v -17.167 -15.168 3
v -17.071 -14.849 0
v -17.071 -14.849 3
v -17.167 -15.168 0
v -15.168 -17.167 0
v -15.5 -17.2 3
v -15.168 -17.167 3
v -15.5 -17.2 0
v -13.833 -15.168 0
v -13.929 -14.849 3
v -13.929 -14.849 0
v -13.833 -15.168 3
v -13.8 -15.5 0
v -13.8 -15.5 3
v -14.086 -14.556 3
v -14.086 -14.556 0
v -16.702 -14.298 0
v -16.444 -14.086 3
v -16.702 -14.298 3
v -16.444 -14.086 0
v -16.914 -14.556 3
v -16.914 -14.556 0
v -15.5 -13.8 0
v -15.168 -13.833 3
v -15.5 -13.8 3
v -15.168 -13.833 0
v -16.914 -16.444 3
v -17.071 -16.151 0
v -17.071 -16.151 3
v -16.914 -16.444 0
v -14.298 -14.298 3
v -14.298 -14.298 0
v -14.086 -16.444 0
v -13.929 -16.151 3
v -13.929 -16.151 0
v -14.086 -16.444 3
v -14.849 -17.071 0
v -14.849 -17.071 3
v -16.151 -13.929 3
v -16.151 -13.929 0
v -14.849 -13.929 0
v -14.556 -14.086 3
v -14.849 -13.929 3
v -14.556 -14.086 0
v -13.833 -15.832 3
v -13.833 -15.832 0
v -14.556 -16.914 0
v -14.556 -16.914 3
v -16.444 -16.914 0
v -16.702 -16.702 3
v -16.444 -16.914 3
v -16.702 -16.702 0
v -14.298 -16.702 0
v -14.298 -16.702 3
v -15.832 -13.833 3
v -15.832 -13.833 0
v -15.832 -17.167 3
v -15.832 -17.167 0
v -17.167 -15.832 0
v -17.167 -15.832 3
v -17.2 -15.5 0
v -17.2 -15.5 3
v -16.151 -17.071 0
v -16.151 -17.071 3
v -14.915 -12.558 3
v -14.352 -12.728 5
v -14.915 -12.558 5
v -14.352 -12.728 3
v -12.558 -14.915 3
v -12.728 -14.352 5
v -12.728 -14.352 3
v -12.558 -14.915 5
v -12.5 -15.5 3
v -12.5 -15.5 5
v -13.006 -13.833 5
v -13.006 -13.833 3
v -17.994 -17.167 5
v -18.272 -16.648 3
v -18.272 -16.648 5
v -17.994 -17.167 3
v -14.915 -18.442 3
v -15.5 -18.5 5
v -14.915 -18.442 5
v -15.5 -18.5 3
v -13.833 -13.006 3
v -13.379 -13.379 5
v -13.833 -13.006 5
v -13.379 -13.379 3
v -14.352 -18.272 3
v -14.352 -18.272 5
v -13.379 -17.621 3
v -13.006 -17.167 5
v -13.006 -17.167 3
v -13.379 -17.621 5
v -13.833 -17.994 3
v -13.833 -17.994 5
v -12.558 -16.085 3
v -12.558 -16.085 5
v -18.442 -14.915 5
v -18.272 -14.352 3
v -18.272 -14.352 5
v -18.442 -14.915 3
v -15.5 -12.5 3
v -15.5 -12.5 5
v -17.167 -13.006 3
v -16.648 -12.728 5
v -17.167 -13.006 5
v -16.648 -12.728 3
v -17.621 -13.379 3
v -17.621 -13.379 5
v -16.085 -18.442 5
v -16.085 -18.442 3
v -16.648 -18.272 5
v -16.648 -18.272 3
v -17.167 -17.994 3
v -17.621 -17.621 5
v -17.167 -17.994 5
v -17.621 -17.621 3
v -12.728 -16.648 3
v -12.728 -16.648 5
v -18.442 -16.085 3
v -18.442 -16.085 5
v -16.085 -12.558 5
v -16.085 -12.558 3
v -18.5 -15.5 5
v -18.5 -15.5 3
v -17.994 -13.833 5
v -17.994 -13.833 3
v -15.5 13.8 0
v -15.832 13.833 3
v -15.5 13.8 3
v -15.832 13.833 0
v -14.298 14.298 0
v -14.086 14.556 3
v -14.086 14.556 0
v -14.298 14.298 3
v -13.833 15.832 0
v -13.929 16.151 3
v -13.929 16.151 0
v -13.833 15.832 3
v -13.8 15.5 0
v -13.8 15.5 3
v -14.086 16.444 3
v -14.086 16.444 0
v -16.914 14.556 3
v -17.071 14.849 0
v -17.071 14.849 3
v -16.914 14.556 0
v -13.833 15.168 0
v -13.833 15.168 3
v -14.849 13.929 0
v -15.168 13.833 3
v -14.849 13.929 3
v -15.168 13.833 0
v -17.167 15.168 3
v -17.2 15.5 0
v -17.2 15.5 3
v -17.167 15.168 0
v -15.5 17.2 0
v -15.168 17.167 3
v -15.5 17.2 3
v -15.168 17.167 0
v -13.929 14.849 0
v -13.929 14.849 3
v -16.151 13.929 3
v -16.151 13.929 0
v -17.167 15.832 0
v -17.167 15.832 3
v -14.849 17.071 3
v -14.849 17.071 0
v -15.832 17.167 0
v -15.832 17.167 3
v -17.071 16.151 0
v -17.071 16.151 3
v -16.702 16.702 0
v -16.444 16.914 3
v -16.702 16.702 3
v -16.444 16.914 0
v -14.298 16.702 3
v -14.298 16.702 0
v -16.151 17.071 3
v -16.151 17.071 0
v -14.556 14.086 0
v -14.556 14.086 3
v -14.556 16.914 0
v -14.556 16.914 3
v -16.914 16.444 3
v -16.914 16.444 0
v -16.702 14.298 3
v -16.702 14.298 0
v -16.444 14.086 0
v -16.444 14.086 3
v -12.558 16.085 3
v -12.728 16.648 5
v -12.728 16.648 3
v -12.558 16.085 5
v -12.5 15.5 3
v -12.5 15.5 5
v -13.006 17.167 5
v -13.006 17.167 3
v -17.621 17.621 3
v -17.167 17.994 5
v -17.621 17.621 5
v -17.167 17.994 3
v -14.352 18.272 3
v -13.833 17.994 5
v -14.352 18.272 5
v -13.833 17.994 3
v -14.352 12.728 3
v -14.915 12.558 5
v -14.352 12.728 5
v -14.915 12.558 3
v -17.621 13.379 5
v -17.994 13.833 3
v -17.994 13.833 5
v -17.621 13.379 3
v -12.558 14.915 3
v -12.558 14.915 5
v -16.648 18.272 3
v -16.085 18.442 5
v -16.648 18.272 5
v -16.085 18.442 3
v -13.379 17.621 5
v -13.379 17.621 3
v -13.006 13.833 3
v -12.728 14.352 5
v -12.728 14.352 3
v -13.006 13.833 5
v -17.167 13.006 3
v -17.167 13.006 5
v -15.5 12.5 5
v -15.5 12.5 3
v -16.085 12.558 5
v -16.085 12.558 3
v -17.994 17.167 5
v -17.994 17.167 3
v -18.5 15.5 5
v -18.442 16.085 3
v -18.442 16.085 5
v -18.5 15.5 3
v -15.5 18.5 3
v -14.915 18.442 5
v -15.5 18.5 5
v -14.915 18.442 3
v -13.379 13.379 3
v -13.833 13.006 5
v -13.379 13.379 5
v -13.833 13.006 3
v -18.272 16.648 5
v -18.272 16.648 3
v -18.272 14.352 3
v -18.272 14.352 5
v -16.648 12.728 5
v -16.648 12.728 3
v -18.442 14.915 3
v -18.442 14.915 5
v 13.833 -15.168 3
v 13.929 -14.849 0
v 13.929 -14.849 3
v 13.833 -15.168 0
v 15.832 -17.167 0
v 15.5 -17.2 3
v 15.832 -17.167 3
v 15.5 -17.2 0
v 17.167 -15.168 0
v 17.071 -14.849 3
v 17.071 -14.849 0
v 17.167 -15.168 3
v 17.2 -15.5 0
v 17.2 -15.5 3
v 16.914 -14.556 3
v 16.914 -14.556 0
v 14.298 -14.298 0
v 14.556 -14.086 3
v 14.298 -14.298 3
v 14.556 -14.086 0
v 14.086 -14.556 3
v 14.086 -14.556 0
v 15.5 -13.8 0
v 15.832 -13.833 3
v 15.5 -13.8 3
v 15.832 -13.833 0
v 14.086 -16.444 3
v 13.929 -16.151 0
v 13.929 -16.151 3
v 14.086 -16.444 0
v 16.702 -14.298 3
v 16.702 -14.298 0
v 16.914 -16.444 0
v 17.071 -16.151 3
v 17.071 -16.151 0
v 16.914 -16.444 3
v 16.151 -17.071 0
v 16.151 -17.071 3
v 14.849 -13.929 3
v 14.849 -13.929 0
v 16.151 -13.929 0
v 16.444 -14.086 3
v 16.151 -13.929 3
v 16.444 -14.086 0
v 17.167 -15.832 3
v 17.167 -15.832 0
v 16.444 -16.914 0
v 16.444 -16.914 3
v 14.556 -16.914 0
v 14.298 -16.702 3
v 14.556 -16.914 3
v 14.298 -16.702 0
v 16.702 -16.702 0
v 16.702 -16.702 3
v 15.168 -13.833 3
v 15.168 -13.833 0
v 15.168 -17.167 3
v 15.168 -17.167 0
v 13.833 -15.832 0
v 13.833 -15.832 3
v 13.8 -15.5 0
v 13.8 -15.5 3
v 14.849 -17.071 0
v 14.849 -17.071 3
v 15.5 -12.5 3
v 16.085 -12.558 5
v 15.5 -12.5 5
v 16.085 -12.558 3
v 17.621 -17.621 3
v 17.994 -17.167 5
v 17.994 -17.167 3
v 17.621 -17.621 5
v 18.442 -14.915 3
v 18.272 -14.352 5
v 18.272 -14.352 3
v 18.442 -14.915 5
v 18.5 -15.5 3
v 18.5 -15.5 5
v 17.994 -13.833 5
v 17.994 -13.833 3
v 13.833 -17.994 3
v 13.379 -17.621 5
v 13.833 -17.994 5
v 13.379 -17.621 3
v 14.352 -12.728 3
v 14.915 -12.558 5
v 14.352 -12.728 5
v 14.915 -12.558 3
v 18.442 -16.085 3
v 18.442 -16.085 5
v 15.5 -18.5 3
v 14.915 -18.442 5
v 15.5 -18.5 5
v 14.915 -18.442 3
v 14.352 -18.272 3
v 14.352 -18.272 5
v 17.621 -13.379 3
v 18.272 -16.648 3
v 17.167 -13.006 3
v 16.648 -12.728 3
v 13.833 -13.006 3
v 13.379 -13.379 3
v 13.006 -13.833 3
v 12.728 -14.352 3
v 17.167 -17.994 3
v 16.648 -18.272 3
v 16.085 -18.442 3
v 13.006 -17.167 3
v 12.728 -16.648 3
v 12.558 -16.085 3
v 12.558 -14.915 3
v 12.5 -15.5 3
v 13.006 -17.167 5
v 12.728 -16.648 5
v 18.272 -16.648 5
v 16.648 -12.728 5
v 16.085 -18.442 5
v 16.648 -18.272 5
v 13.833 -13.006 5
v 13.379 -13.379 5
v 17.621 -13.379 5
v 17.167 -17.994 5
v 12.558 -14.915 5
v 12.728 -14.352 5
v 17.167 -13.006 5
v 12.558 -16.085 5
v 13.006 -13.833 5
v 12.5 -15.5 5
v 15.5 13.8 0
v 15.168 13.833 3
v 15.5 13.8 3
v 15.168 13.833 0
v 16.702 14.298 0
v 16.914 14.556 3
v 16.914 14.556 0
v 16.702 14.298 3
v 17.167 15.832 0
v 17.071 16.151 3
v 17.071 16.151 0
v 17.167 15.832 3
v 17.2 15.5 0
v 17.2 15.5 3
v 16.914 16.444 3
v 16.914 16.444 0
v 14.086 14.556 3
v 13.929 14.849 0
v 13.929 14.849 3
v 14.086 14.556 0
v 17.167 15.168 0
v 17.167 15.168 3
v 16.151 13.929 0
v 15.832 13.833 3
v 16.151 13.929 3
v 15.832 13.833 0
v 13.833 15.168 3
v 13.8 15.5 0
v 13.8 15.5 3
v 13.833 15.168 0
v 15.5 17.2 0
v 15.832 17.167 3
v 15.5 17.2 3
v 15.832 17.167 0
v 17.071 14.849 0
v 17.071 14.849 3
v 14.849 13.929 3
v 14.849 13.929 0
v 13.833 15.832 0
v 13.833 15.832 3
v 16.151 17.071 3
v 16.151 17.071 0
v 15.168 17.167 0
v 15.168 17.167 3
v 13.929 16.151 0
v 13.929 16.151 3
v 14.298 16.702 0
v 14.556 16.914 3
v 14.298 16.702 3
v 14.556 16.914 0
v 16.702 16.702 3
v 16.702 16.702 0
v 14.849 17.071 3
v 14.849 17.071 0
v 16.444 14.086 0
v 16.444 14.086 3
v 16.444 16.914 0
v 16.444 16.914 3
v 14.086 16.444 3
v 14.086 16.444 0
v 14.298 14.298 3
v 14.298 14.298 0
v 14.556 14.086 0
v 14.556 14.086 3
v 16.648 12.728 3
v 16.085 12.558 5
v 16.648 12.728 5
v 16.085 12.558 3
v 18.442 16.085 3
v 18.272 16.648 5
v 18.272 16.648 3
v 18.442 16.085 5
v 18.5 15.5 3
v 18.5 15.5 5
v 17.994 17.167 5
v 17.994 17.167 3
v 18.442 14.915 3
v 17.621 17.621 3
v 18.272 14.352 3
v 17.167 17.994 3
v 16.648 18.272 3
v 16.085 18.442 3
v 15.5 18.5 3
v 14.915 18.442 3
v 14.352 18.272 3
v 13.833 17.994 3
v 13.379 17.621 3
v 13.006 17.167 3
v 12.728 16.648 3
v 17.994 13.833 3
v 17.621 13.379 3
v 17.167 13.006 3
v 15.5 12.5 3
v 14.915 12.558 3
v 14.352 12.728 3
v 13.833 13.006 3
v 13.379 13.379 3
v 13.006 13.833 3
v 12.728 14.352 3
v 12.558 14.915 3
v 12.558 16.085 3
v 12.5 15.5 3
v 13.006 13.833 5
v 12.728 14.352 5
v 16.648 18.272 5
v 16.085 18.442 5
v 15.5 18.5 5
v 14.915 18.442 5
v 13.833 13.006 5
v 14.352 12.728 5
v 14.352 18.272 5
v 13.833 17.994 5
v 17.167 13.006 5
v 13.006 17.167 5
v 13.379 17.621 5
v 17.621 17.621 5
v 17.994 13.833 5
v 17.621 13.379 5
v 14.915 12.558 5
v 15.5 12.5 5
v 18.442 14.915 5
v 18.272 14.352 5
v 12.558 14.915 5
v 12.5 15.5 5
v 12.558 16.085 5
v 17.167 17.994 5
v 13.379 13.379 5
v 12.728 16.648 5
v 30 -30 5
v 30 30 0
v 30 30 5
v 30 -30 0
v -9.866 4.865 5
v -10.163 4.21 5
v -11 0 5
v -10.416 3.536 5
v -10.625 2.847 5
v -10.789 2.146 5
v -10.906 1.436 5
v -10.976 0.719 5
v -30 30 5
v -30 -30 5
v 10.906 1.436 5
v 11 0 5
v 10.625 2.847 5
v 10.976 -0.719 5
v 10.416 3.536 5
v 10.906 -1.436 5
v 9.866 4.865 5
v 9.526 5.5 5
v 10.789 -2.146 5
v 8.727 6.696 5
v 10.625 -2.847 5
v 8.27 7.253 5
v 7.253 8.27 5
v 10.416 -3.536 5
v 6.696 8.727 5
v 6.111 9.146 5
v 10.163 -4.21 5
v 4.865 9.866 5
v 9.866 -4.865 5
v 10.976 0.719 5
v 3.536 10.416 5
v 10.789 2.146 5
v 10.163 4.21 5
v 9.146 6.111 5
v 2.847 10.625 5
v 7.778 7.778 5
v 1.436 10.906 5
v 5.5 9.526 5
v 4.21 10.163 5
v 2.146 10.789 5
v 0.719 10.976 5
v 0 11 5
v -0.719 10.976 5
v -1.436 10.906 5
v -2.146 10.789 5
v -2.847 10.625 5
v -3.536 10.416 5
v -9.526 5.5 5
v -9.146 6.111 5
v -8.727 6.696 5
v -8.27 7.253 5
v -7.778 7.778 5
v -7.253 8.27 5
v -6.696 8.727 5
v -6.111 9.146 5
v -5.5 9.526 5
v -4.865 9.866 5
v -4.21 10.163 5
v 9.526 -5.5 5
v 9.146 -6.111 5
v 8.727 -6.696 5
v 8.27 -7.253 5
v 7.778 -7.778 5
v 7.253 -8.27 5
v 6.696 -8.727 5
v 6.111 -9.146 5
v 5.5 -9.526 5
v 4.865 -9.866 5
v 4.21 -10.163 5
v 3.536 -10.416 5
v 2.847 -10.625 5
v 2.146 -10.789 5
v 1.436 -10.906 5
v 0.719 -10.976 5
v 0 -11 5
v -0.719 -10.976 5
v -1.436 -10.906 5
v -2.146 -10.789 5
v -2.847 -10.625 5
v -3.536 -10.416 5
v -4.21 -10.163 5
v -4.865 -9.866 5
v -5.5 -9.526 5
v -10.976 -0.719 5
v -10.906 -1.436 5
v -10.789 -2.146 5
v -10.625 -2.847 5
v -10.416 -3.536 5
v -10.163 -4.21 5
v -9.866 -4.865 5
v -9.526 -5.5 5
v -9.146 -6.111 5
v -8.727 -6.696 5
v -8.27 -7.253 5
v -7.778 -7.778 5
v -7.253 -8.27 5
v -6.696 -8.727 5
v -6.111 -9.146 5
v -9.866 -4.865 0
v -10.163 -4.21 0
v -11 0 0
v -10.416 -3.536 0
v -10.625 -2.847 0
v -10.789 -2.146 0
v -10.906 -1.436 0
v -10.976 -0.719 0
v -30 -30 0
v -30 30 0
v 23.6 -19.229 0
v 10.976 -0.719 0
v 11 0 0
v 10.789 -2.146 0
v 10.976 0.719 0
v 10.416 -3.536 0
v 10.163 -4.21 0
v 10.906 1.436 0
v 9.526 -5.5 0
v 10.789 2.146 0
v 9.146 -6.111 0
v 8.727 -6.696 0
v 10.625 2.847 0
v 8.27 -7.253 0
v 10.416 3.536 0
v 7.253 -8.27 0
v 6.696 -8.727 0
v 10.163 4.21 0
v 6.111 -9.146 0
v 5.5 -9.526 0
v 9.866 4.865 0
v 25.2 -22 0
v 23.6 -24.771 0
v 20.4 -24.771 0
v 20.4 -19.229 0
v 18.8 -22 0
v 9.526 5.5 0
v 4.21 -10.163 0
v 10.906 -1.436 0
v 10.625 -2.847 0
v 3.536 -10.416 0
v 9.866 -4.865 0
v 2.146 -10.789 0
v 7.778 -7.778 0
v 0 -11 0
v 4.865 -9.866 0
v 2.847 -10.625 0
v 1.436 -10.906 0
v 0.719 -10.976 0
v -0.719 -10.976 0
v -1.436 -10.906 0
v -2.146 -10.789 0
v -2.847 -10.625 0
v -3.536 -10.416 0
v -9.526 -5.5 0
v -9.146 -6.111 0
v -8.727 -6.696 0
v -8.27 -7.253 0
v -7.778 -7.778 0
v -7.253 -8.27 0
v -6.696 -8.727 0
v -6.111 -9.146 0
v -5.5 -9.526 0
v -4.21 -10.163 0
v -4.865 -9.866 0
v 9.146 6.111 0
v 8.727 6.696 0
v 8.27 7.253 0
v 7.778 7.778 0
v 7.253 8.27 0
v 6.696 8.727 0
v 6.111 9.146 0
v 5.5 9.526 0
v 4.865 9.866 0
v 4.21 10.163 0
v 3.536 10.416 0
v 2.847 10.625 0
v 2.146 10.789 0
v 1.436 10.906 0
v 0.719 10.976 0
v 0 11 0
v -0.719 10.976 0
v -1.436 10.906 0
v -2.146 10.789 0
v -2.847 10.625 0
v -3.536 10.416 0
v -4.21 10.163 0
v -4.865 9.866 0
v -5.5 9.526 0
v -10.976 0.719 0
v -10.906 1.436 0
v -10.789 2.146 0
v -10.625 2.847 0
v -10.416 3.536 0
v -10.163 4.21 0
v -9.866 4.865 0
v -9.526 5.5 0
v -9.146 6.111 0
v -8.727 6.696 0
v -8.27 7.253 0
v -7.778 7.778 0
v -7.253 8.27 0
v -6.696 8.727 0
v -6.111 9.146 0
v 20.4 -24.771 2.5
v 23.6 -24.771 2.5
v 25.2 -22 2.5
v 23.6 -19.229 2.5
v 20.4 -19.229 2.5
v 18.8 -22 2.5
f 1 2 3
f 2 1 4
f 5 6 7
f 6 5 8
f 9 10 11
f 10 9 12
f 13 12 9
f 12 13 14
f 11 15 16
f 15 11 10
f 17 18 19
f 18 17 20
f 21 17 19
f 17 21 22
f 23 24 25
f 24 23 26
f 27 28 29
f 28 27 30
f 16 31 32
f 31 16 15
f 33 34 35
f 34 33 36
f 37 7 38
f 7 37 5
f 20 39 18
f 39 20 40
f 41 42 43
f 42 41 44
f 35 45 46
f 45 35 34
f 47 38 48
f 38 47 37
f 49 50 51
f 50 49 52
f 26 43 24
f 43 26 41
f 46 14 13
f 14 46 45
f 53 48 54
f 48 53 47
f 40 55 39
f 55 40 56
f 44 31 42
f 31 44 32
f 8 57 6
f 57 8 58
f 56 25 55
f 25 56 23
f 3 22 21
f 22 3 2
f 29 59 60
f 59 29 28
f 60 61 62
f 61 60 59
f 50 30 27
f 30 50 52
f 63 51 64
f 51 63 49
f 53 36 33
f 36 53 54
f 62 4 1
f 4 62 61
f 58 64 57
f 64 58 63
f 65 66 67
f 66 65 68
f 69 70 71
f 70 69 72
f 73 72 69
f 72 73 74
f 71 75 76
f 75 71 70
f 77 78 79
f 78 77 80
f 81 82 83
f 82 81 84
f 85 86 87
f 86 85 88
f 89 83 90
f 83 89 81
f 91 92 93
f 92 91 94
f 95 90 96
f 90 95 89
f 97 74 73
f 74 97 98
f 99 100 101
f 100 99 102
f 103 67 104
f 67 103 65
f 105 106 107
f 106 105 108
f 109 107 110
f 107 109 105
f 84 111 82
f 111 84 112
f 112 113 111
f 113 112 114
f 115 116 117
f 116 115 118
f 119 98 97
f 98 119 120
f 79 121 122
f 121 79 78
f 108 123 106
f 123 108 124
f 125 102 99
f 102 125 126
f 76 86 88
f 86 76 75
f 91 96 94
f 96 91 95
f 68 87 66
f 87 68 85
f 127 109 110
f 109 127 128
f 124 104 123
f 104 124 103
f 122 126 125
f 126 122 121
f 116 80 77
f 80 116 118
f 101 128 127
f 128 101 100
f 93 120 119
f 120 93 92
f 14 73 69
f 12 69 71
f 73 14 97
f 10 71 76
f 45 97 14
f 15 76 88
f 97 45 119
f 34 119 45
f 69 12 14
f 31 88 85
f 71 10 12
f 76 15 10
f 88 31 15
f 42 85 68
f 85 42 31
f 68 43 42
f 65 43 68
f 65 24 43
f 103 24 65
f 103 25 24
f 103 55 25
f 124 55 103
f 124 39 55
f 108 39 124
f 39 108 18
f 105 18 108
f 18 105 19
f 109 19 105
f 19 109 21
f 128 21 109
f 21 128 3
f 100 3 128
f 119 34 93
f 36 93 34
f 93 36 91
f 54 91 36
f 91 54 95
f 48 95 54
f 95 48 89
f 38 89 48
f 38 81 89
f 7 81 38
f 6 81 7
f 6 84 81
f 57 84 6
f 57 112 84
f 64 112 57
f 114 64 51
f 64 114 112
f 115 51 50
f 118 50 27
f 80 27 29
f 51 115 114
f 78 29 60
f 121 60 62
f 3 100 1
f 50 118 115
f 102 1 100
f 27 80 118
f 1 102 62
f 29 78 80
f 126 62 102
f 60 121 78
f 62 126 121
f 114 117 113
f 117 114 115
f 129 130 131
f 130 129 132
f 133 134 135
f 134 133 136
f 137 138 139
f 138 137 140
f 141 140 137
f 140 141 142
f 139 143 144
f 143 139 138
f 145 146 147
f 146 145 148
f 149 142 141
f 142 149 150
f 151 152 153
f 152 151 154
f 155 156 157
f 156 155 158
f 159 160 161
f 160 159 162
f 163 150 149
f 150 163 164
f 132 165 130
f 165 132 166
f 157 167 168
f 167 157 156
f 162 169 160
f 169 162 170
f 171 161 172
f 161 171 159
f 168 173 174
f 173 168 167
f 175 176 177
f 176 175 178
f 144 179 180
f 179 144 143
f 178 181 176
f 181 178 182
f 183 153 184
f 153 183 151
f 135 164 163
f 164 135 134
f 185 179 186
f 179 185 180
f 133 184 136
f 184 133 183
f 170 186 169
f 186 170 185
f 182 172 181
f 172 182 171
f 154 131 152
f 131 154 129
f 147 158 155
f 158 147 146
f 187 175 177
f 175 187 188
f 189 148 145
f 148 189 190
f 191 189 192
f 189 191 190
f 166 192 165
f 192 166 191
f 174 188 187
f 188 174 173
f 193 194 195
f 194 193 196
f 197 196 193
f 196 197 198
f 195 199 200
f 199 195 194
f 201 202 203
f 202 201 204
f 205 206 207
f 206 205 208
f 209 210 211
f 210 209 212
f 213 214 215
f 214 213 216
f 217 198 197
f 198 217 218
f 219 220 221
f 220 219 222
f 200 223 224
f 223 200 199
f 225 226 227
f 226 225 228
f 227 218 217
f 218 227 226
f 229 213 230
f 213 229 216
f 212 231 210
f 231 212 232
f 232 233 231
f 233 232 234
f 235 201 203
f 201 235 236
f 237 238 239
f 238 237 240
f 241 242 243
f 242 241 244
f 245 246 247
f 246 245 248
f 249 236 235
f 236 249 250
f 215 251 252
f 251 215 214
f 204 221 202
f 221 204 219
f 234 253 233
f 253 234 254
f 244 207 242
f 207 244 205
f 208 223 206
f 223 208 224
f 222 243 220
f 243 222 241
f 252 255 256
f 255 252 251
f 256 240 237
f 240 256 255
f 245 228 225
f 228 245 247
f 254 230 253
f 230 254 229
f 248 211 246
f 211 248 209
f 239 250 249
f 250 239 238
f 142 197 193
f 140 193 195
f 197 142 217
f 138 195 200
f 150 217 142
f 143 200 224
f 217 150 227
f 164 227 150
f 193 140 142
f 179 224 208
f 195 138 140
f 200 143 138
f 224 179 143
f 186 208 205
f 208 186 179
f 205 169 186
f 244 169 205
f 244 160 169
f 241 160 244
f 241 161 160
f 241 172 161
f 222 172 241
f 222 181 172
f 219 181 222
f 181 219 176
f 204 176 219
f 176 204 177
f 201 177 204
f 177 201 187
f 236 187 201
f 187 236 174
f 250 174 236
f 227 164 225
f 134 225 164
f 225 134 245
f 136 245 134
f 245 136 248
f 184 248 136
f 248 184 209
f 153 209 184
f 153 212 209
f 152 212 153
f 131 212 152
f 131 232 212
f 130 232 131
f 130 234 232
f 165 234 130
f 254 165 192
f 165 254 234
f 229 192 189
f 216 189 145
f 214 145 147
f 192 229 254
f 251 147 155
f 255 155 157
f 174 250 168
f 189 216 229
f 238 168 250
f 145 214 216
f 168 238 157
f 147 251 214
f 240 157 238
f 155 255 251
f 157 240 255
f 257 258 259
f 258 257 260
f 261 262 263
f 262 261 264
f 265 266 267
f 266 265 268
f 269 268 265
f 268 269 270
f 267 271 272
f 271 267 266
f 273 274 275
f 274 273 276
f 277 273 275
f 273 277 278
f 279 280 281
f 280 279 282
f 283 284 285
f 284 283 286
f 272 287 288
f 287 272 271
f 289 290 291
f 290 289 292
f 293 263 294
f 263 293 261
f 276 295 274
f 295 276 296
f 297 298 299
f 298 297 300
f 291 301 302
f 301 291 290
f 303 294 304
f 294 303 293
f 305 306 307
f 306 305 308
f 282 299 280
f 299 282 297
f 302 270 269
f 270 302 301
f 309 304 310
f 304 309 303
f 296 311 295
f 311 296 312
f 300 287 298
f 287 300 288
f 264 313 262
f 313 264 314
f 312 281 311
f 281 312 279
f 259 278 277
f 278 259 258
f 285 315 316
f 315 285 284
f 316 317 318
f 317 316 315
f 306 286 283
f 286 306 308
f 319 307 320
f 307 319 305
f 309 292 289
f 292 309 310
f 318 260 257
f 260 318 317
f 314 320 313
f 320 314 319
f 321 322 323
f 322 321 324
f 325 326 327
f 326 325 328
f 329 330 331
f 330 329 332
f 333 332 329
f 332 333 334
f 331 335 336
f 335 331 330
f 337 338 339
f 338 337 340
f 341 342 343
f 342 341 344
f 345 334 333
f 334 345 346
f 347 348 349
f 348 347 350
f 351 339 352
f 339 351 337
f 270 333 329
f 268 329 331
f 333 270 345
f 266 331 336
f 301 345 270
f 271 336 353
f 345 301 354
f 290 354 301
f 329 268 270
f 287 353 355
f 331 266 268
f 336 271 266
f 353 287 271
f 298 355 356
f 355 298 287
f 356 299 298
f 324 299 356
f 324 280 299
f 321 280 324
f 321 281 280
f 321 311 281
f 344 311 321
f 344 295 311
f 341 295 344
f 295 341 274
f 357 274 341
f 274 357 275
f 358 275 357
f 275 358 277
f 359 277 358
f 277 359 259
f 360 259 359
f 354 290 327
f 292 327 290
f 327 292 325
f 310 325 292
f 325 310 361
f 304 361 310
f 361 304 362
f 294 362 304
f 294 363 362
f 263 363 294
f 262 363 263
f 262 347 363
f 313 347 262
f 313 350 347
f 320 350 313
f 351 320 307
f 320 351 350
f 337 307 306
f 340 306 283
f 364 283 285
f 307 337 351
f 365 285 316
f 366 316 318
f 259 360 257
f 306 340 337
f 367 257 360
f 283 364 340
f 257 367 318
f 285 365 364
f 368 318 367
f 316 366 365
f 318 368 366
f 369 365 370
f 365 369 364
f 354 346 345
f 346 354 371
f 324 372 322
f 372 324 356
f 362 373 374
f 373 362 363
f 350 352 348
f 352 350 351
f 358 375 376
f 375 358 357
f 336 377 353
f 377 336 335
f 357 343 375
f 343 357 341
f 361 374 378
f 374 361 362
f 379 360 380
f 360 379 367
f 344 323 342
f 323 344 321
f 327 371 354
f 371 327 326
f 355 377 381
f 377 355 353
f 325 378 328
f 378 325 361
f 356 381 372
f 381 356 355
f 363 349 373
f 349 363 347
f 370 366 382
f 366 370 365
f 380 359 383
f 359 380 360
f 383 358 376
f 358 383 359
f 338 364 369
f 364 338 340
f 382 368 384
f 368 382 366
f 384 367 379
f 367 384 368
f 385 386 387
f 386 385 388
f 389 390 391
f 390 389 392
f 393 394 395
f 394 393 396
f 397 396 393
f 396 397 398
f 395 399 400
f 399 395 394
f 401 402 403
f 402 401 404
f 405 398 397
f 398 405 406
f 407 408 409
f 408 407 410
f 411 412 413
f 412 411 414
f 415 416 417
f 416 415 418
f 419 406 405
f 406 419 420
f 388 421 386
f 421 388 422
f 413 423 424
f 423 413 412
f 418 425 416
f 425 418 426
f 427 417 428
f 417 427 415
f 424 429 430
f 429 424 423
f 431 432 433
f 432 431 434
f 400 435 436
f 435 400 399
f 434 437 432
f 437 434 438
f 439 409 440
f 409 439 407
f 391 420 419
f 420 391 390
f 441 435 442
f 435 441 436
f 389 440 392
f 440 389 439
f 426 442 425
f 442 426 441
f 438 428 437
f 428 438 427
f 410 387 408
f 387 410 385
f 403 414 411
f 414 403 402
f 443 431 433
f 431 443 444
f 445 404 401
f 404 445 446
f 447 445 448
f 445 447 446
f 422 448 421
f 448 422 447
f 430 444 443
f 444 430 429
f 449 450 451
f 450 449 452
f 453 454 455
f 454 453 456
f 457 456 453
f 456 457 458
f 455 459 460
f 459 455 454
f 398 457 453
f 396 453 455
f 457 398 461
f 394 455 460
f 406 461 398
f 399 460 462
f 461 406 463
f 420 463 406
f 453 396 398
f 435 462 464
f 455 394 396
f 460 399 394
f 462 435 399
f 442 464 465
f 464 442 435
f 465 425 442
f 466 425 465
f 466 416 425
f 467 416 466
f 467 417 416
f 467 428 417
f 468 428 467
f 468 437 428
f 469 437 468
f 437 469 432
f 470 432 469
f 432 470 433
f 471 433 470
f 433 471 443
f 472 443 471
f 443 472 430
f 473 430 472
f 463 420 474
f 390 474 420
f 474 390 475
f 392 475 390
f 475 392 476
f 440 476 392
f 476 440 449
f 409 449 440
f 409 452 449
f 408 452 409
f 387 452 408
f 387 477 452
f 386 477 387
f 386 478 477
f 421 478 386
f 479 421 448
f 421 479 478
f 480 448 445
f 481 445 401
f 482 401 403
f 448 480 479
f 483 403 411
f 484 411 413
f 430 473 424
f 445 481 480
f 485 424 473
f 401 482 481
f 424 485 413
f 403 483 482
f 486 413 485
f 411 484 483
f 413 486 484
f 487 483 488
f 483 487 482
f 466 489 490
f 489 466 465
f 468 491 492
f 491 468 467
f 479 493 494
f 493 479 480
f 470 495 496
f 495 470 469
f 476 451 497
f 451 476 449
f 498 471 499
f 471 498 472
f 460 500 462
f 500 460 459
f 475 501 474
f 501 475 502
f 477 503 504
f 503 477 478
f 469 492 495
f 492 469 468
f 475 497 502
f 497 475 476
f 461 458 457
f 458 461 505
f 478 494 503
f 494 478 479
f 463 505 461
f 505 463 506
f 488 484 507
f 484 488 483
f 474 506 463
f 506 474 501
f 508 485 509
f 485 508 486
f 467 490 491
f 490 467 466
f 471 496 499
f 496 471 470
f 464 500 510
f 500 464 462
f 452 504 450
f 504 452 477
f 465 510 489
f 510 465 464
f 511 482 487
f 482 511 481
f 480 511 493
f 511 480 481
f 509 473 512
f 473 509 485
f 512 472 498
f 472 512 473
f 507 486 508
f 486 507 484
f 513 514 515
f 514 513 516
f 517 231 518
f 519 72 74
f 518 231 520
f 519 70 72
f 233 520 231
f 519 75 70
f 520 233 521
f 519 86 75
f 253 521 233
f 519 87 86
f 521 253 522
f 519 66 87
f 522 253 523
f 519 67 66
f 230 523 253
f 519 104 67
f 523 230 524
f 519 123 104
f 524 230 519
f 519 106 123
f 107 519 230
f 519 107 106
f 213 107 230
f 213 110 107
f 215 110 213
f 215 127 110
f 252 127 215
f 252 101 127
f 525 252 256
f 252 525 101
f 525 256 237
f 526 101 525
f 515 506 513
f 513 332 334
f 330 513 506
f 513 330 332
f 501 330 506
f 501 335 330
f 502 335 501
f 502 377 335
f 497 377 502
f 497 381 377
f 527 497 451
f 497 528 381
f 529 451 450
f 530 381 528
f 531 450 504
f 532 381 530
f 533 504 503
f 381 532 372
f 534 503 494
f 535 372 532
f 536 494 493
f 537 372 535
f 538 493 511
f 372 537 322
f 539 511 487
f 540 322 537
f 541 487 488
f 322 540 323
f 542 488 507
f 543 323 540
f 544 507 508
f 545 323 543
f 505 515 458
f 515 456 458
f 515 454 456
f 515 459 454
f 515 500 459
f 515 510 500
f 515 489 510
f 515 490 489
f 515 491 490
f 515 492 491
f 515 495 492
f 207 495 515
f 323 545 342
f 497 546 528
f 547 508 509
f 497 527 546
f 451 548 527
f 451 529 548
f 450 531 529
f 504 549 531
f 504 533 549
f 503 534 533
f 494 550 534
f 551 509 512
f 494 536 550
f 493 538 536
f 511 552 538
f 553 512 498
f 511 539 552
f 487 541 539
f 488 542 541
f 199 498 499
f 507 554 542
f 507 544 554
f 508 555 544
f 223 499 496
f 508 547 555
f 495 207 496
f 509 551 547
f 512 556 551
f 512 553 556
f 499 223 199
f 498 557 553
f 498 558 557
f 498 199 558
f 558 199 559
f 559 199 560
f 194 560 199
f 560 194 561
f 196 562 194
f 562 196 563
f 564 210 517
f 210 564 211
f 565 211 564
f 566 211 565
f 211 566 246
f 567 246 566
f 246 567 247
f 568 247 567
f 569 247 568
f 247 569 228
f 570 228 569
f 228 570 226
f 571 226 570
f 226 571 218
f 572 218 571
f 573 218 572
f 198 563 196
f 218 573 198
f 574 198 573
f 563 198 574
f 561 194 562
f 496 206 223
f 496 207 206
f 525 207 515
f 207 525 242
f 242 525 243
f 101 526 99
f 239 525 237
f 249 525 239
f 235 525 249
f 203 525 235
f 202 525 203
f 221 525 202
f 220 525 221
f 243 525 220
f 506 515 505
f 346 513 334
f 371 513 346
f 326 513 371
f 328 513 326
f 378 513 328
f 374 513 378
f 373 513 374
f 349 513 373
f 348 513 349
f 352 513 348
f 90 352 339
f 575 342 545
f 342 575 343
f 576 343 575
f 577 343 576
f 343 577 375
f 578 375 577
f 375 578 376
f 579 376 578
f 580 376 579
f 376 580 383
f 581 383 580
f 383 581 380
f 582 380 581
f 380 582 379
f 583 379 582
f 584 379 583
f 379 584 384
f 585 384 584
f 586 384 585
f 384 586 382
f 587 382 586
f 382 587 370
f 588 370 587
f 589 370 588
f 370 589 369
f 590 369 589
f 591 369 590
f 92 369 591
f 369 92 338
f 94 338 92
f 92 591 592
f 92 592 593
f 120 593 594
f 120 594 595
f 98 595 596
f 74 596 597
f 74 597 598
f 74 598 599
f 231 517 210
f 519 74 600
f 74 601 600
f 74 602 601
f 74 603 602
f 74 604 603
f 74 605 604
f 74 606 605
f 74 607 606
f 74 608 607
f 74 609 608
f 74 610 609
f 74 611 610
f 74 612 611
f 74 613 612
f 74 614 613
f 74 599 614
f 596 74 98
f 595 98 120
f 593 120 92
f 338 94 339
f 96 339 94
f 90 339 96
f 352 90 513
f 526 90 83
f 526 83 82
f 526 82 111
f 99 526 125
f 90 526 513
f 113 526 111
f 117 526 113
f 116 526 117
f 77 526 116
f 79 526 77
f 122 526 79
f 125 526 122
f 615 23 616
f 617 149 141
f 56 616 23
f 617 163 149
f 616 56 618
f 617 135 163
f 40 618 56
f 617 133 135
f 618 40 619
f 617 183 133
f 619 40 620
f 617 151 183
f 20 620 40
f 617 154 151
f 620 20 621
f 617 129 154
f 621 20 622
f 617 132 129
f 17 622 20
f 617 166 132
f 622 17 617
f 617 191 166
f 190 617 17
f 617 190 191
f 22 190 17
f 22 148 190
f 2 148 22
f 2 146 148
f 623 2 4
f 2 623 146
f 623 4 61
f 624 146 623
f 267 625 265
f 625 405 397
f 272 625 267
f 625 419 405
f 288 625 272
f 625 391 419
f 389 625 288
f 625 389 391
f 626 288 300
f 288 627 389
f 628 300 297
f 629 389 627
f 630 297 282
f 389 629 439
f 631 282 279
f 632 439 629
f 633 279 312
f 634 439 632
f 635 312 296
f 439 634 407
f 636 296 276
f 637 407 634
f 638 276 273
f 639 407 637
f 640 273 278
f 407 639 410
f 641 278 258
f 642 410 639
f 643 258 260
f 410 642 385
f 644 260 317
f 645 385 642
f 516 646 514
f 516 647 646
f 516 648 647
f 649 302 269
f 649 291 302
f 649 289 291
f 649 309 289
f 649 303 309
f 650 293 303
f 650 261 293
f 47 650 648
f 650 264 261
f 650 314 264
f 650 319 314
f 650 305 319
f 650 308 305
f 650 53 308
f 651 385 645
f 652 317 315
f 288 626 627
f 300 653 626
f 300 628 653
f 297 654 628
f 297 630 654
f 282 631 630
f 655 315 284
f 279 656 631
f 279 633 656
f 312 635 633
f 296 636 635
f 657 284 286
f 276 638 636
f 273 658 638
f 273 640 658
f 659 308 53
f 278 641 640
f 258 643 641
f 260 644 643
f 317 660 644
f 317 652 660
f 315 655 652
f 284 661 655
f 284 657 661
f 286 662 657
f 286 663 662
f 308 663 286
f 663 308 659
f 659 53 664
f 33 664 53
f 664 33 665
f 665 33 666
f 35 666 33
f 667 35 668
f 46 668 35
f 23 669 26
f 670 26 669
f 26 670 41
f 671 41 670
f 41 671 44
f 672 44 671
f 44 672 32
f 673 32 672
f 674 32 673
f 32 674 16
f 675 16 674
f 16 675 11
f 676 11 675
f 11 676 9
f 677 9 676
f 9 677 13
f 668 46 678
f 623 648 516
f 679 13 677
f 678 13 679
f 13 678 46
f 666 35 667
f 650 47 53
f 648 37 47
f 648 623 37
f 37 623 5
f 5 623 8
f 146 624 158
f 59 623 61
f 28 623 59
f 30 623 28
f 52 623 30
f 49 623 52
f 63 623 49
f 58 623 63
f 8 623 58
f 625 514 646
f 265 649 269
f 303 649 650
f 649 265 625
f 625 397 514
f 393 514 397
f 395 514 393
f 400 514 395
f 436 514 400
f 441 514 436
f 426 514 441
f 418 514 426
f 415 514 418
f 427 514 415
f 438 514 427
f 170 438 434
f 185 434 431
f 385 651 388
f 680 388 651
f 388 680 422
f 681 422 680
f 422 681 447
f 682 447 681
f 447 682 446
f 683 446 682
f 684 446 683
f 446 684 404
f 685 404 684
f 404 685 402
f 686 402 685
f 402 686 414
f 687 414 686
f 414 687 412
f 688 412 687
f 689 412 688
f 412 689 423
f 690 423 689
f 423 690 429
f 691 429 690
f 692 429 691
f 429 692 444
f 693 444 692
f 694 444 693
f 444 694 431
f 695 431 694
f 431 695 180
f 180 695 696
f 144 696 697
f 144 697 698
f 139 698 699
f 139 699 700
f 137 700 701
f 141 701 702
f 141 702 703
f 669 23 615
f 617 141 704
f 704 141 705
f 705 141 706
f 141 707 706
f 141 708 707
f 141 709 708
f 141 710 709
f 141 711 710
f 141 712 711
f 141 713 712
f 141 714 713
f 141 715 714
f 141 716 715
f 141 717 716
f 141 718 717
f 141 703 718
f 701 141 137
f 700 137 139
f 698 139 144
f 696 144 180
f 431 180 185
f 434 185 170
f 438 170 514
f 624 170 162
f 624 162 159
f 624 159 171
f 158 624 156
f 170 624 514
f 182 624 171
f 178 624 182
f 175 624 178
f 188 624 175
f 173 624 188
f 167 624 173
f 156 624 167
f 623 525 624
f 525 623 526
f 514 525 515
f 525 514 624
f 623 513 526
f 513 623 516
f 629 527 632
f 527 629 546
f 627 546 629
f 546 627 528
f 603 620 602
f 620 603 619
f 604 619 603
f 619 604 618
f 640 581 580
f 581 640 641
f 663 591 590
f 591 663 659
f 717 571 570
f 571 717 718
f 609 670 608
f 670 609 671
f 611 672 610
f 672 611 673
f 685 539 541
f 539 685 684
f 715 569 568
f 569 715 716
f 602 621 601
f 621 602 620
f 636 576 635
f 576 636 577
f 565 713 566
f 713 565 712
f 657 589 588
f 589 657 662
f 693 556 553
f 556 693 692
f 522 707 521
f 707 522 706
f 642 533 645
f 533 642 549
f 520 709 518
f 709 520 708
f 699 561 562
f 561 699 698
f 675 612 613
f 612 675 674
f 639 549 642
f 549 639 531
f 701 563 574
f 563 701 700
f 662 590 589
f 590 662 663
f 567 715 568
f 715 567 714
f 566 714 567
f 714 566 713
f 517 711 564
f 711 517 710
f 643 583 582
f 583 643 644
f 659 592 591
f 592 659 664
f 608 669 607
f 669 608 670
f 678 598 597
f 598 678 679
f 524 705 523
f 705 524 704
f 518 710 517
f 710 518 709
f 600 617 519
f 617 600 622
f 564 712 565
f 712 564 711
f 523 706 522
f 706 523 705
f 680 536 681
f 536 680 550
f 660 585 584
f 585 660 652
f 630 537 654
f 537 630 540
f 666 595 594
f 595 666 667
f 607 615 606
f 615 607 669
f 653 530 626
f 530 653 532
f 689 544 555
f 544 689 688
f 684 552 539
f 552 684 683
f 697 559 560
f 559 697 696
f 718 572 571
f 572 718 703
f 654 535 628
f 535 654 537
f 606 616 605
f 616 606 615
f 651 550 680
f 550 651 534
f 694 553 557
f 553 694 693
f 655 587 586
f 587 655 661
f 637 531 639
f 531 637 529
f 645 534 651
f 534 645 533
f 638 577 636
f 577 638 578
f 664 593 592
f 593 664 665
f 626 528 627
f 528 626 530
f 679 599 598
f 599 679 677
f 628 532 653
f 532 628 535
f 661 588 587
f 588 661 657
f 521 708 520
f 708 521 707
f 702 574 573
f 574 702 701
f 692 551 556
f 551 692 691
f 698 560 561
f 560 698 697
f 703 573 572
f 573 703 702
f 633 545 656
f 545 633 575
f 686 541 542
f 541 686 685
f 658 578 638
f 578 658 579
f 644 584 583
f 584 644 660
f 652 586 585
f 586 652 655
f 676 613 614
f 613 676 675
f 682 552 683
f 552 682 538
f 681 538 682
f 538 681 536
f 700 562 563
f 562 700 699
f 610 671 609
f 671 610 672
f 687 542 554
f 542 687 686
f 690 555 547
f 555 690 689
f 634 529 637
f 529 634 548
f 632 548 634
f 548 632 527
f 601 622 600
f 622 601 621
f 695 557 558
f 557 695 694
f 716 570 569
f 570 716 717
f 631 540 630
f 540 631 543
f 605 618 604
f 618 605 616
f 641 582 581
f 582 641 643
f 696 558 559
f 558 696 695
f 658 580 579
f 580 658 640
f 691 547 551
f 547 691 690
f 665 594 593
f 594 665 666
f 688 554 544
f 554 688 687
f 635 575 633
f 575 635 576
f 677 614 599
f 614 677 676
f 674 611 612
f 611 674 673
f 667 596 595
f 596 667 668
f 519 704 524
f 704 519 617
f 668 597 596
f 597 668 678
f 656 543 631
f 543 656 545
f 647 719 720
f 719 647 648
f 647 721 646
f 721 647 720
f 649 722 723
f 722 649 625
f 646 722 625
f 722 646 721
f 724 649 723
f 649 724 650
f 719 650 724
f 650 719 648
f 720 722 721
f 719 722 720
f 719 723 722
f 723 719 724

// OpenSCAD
// A NEMA 17 motor plate as a download is drawn (docs/interchange/README.md#recognising-a-faceted-mesh).
// Known answers, checked by tests/test_mesh_files.cpp:
//   plate 60 x 60 x 5, from z = 0 to 5, centred on the origin
//   pilot bore r 11 ($fn 96) through, on z
//   four screw holes r 1.7 ($fn 32) through, at (+-15.5, +-15.5)
//   four counterbores r 3 ($fn 32), from z = 3 to 5, on the same centres
//   one hex nut trap (a $fn 6 cylinder, corners on r 3.2), z 0 to 2.5, at (22, -22)
$fn = 32;
difference() {
  translate([-30, -30, 0]) cube([60, 60, 5]);
  translate([0, 0, -1]) cylinder(r = 11, h = 7, $fn = 96);
  for (x = [-15.5, 15.5], y = [-15.5, 15.5]) {
    translate([x, y, -1]) cylinder(r = 1.7, h = 7);
    translate([x, y, 3]) cylinder(r = 3, h = 3);
  }
  translate([22, -22, -1]) cylinder(r = 3.2, h = 3.5, $fn = 6);
}
